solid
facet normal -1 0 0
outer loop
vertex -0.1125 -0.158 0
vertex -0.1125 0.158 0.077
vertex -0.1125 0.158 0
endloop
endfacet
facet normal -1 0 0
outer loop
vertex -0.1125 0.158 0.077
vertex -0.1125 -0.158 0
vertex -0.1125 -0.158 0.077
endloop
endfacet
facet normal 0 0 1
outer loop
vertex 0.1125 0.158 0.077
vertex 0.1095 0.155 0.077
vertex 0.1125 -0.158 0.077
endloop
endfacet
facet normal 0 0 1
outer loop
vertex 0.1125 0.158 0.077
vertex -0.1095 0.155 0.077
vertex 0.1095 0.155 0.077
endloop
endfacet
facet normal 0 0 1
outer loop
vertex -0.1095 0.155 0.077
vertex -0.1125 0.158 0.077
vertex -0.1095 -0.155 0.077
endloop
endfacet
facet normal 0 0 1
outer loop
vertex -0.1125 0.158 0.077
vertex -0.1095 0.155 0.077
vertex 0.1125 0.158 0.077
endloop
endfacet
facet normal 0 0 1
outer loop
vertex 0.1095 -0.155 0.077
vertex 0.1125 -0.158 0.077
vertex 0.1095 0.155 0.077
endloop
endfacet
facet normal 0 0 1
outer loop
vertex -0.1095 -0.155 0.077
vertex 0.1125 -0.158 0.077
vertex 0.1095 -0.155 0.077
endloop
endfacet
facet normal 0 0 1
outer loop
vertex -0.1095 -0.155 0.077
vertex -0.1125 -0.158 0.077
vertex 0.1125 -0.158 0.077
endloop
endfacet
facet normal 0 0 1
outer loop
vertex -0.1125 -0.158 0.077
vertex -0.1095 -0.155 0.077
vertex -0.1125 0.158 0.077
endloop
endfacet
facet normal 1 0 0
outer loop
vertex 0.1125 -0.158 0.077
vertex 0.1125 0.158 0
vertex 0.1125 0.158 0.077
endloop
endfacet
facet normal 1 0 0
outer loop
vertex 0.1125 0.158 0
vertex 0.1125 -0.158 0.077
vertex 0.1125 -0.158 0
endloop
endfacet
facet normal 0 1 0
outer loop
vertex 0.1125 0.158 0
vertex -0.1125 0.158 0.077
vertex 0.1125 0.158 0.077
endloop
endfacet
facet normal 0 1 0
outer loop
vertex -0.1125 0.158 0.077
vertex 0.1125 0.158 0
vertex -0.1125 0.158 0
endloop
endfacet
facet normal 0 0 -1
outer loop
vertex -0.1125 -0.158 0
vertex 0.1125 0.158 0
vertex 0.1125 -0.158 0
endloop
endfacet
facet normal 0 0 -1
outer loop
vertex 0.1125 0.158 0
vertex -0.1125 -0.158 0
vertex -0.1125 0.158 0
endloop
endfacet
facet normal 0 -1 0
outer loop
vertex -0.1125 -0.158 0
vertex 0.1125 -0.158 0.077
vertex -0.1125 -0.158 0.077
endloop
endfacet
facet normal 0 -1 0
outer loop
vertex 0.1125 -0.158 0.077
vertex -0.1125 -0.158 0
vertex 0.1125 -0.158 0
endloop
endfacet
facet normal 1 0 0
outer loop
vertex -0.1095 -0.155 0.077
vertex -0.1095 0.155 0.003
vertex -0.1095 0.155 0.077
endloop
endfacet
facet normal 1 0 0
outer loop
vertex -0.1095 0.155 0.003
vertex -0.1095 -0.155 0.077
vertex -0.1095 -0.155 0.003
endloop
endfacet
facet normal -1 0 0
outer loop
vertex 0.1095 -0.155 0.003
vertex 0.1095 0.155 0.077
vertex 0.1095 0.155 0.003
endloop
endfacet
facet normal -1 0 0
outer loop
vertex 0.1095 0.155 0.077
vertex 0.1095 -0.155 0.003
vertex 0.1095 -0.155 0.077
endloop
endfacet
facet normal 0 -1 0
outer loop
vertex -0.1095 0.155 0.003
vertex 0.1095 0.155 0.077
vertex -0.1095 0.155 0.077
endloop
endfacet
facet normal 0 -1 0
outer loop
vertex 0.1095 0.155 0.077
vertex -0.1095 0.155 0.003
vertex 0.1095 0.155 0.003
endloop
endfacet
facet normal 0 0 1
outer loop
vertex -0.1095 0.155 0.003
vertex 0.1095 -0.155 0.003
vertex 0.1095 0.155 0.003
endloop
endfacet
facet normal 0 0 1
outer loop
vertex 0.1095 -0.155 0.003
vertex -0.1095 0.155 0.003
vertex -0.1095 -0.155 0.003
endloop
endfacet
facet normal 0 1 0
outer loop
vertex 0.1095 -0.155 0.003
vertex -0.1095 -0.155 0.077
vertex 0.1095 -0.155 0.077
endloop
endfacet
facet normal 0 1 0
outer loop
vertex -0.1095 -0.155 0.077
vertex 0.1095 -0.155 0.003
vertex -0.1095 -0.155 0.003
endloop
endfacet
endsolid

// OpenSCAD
//Copyright (c) 2016, BRML
//All rights reserved.
//
//Redistribution and use in source and binary forms, with or without
//modification, are permitted provided that the following conditions are met:
//
//1. Redistributions of source code must retain the above copyright notice,
//this list of conditions and the following disclaimer.
//
//2. Redistributions in binary form must reproduce the above copyright notice,
//this list of conditions and the following disclaimer in the documentation
//and/or other materials provided with the distribution.
//
//THIS SOFTWARE IS PROVIDED BY THE COPYRIGHT HOLDERS AND CONTRIBUTORS "AS IS"
//AND ANY EXPRESS OR IMPLIED WARRANTIES, INCLUDING, BUT NOT LIMITED TO, THE
//IMPLIED WARRANTIES OF MERCHANTABILITY AND FITNESS FOR A PARTICULAR PURPOSE
//ARE DISCLAIMED. IN NO EVENT SHALL THE COPYRIGHT HOLDER OR CONTRIBUTORS BE
//LIABLE FOR ANY DIRECT, INDIRECT, INCIDENTAL, SPECIAL, EXEMPLARY, OR
//CONSEQUENTIAL DAMAGES (INCLUDING, BUT NOT LIMITED TO, PROCUREMENT OF
//SUBSTITUTE GOODS OR SERVICES; LOSS OF USE, DATA, OR PROFITS; OR BUSINESS
//INTERRUPTION) HOWEVER CAUSED AND ON ANY THEORY OF LIABILITY, WHETHER IN
//CONTRACT, STRICT LIABILITY, OR TORT (INCLUDING NEGLIGENCE OR OTHERWISE)
//ARISING IN ANY WAY OUT OF THE USE OF THIS SOFTWARE, EVEN IF ADVISED OF THE
//POSSIBILITY OF SUCH DAMAGE.


width = 0.225;  // [m]
length = 0.316;  // [m]
height = 0.077;  // [m]
thickness = 0.003;  // [m]

translate([-width/2, -length/2, 0])
difference() {
    cube([width, length, height], center=false);
    translate([thickness, thickness, thickness])
        cube([width-2*thickness, length-2*thickness, height-thickness+1], center=false);
}
